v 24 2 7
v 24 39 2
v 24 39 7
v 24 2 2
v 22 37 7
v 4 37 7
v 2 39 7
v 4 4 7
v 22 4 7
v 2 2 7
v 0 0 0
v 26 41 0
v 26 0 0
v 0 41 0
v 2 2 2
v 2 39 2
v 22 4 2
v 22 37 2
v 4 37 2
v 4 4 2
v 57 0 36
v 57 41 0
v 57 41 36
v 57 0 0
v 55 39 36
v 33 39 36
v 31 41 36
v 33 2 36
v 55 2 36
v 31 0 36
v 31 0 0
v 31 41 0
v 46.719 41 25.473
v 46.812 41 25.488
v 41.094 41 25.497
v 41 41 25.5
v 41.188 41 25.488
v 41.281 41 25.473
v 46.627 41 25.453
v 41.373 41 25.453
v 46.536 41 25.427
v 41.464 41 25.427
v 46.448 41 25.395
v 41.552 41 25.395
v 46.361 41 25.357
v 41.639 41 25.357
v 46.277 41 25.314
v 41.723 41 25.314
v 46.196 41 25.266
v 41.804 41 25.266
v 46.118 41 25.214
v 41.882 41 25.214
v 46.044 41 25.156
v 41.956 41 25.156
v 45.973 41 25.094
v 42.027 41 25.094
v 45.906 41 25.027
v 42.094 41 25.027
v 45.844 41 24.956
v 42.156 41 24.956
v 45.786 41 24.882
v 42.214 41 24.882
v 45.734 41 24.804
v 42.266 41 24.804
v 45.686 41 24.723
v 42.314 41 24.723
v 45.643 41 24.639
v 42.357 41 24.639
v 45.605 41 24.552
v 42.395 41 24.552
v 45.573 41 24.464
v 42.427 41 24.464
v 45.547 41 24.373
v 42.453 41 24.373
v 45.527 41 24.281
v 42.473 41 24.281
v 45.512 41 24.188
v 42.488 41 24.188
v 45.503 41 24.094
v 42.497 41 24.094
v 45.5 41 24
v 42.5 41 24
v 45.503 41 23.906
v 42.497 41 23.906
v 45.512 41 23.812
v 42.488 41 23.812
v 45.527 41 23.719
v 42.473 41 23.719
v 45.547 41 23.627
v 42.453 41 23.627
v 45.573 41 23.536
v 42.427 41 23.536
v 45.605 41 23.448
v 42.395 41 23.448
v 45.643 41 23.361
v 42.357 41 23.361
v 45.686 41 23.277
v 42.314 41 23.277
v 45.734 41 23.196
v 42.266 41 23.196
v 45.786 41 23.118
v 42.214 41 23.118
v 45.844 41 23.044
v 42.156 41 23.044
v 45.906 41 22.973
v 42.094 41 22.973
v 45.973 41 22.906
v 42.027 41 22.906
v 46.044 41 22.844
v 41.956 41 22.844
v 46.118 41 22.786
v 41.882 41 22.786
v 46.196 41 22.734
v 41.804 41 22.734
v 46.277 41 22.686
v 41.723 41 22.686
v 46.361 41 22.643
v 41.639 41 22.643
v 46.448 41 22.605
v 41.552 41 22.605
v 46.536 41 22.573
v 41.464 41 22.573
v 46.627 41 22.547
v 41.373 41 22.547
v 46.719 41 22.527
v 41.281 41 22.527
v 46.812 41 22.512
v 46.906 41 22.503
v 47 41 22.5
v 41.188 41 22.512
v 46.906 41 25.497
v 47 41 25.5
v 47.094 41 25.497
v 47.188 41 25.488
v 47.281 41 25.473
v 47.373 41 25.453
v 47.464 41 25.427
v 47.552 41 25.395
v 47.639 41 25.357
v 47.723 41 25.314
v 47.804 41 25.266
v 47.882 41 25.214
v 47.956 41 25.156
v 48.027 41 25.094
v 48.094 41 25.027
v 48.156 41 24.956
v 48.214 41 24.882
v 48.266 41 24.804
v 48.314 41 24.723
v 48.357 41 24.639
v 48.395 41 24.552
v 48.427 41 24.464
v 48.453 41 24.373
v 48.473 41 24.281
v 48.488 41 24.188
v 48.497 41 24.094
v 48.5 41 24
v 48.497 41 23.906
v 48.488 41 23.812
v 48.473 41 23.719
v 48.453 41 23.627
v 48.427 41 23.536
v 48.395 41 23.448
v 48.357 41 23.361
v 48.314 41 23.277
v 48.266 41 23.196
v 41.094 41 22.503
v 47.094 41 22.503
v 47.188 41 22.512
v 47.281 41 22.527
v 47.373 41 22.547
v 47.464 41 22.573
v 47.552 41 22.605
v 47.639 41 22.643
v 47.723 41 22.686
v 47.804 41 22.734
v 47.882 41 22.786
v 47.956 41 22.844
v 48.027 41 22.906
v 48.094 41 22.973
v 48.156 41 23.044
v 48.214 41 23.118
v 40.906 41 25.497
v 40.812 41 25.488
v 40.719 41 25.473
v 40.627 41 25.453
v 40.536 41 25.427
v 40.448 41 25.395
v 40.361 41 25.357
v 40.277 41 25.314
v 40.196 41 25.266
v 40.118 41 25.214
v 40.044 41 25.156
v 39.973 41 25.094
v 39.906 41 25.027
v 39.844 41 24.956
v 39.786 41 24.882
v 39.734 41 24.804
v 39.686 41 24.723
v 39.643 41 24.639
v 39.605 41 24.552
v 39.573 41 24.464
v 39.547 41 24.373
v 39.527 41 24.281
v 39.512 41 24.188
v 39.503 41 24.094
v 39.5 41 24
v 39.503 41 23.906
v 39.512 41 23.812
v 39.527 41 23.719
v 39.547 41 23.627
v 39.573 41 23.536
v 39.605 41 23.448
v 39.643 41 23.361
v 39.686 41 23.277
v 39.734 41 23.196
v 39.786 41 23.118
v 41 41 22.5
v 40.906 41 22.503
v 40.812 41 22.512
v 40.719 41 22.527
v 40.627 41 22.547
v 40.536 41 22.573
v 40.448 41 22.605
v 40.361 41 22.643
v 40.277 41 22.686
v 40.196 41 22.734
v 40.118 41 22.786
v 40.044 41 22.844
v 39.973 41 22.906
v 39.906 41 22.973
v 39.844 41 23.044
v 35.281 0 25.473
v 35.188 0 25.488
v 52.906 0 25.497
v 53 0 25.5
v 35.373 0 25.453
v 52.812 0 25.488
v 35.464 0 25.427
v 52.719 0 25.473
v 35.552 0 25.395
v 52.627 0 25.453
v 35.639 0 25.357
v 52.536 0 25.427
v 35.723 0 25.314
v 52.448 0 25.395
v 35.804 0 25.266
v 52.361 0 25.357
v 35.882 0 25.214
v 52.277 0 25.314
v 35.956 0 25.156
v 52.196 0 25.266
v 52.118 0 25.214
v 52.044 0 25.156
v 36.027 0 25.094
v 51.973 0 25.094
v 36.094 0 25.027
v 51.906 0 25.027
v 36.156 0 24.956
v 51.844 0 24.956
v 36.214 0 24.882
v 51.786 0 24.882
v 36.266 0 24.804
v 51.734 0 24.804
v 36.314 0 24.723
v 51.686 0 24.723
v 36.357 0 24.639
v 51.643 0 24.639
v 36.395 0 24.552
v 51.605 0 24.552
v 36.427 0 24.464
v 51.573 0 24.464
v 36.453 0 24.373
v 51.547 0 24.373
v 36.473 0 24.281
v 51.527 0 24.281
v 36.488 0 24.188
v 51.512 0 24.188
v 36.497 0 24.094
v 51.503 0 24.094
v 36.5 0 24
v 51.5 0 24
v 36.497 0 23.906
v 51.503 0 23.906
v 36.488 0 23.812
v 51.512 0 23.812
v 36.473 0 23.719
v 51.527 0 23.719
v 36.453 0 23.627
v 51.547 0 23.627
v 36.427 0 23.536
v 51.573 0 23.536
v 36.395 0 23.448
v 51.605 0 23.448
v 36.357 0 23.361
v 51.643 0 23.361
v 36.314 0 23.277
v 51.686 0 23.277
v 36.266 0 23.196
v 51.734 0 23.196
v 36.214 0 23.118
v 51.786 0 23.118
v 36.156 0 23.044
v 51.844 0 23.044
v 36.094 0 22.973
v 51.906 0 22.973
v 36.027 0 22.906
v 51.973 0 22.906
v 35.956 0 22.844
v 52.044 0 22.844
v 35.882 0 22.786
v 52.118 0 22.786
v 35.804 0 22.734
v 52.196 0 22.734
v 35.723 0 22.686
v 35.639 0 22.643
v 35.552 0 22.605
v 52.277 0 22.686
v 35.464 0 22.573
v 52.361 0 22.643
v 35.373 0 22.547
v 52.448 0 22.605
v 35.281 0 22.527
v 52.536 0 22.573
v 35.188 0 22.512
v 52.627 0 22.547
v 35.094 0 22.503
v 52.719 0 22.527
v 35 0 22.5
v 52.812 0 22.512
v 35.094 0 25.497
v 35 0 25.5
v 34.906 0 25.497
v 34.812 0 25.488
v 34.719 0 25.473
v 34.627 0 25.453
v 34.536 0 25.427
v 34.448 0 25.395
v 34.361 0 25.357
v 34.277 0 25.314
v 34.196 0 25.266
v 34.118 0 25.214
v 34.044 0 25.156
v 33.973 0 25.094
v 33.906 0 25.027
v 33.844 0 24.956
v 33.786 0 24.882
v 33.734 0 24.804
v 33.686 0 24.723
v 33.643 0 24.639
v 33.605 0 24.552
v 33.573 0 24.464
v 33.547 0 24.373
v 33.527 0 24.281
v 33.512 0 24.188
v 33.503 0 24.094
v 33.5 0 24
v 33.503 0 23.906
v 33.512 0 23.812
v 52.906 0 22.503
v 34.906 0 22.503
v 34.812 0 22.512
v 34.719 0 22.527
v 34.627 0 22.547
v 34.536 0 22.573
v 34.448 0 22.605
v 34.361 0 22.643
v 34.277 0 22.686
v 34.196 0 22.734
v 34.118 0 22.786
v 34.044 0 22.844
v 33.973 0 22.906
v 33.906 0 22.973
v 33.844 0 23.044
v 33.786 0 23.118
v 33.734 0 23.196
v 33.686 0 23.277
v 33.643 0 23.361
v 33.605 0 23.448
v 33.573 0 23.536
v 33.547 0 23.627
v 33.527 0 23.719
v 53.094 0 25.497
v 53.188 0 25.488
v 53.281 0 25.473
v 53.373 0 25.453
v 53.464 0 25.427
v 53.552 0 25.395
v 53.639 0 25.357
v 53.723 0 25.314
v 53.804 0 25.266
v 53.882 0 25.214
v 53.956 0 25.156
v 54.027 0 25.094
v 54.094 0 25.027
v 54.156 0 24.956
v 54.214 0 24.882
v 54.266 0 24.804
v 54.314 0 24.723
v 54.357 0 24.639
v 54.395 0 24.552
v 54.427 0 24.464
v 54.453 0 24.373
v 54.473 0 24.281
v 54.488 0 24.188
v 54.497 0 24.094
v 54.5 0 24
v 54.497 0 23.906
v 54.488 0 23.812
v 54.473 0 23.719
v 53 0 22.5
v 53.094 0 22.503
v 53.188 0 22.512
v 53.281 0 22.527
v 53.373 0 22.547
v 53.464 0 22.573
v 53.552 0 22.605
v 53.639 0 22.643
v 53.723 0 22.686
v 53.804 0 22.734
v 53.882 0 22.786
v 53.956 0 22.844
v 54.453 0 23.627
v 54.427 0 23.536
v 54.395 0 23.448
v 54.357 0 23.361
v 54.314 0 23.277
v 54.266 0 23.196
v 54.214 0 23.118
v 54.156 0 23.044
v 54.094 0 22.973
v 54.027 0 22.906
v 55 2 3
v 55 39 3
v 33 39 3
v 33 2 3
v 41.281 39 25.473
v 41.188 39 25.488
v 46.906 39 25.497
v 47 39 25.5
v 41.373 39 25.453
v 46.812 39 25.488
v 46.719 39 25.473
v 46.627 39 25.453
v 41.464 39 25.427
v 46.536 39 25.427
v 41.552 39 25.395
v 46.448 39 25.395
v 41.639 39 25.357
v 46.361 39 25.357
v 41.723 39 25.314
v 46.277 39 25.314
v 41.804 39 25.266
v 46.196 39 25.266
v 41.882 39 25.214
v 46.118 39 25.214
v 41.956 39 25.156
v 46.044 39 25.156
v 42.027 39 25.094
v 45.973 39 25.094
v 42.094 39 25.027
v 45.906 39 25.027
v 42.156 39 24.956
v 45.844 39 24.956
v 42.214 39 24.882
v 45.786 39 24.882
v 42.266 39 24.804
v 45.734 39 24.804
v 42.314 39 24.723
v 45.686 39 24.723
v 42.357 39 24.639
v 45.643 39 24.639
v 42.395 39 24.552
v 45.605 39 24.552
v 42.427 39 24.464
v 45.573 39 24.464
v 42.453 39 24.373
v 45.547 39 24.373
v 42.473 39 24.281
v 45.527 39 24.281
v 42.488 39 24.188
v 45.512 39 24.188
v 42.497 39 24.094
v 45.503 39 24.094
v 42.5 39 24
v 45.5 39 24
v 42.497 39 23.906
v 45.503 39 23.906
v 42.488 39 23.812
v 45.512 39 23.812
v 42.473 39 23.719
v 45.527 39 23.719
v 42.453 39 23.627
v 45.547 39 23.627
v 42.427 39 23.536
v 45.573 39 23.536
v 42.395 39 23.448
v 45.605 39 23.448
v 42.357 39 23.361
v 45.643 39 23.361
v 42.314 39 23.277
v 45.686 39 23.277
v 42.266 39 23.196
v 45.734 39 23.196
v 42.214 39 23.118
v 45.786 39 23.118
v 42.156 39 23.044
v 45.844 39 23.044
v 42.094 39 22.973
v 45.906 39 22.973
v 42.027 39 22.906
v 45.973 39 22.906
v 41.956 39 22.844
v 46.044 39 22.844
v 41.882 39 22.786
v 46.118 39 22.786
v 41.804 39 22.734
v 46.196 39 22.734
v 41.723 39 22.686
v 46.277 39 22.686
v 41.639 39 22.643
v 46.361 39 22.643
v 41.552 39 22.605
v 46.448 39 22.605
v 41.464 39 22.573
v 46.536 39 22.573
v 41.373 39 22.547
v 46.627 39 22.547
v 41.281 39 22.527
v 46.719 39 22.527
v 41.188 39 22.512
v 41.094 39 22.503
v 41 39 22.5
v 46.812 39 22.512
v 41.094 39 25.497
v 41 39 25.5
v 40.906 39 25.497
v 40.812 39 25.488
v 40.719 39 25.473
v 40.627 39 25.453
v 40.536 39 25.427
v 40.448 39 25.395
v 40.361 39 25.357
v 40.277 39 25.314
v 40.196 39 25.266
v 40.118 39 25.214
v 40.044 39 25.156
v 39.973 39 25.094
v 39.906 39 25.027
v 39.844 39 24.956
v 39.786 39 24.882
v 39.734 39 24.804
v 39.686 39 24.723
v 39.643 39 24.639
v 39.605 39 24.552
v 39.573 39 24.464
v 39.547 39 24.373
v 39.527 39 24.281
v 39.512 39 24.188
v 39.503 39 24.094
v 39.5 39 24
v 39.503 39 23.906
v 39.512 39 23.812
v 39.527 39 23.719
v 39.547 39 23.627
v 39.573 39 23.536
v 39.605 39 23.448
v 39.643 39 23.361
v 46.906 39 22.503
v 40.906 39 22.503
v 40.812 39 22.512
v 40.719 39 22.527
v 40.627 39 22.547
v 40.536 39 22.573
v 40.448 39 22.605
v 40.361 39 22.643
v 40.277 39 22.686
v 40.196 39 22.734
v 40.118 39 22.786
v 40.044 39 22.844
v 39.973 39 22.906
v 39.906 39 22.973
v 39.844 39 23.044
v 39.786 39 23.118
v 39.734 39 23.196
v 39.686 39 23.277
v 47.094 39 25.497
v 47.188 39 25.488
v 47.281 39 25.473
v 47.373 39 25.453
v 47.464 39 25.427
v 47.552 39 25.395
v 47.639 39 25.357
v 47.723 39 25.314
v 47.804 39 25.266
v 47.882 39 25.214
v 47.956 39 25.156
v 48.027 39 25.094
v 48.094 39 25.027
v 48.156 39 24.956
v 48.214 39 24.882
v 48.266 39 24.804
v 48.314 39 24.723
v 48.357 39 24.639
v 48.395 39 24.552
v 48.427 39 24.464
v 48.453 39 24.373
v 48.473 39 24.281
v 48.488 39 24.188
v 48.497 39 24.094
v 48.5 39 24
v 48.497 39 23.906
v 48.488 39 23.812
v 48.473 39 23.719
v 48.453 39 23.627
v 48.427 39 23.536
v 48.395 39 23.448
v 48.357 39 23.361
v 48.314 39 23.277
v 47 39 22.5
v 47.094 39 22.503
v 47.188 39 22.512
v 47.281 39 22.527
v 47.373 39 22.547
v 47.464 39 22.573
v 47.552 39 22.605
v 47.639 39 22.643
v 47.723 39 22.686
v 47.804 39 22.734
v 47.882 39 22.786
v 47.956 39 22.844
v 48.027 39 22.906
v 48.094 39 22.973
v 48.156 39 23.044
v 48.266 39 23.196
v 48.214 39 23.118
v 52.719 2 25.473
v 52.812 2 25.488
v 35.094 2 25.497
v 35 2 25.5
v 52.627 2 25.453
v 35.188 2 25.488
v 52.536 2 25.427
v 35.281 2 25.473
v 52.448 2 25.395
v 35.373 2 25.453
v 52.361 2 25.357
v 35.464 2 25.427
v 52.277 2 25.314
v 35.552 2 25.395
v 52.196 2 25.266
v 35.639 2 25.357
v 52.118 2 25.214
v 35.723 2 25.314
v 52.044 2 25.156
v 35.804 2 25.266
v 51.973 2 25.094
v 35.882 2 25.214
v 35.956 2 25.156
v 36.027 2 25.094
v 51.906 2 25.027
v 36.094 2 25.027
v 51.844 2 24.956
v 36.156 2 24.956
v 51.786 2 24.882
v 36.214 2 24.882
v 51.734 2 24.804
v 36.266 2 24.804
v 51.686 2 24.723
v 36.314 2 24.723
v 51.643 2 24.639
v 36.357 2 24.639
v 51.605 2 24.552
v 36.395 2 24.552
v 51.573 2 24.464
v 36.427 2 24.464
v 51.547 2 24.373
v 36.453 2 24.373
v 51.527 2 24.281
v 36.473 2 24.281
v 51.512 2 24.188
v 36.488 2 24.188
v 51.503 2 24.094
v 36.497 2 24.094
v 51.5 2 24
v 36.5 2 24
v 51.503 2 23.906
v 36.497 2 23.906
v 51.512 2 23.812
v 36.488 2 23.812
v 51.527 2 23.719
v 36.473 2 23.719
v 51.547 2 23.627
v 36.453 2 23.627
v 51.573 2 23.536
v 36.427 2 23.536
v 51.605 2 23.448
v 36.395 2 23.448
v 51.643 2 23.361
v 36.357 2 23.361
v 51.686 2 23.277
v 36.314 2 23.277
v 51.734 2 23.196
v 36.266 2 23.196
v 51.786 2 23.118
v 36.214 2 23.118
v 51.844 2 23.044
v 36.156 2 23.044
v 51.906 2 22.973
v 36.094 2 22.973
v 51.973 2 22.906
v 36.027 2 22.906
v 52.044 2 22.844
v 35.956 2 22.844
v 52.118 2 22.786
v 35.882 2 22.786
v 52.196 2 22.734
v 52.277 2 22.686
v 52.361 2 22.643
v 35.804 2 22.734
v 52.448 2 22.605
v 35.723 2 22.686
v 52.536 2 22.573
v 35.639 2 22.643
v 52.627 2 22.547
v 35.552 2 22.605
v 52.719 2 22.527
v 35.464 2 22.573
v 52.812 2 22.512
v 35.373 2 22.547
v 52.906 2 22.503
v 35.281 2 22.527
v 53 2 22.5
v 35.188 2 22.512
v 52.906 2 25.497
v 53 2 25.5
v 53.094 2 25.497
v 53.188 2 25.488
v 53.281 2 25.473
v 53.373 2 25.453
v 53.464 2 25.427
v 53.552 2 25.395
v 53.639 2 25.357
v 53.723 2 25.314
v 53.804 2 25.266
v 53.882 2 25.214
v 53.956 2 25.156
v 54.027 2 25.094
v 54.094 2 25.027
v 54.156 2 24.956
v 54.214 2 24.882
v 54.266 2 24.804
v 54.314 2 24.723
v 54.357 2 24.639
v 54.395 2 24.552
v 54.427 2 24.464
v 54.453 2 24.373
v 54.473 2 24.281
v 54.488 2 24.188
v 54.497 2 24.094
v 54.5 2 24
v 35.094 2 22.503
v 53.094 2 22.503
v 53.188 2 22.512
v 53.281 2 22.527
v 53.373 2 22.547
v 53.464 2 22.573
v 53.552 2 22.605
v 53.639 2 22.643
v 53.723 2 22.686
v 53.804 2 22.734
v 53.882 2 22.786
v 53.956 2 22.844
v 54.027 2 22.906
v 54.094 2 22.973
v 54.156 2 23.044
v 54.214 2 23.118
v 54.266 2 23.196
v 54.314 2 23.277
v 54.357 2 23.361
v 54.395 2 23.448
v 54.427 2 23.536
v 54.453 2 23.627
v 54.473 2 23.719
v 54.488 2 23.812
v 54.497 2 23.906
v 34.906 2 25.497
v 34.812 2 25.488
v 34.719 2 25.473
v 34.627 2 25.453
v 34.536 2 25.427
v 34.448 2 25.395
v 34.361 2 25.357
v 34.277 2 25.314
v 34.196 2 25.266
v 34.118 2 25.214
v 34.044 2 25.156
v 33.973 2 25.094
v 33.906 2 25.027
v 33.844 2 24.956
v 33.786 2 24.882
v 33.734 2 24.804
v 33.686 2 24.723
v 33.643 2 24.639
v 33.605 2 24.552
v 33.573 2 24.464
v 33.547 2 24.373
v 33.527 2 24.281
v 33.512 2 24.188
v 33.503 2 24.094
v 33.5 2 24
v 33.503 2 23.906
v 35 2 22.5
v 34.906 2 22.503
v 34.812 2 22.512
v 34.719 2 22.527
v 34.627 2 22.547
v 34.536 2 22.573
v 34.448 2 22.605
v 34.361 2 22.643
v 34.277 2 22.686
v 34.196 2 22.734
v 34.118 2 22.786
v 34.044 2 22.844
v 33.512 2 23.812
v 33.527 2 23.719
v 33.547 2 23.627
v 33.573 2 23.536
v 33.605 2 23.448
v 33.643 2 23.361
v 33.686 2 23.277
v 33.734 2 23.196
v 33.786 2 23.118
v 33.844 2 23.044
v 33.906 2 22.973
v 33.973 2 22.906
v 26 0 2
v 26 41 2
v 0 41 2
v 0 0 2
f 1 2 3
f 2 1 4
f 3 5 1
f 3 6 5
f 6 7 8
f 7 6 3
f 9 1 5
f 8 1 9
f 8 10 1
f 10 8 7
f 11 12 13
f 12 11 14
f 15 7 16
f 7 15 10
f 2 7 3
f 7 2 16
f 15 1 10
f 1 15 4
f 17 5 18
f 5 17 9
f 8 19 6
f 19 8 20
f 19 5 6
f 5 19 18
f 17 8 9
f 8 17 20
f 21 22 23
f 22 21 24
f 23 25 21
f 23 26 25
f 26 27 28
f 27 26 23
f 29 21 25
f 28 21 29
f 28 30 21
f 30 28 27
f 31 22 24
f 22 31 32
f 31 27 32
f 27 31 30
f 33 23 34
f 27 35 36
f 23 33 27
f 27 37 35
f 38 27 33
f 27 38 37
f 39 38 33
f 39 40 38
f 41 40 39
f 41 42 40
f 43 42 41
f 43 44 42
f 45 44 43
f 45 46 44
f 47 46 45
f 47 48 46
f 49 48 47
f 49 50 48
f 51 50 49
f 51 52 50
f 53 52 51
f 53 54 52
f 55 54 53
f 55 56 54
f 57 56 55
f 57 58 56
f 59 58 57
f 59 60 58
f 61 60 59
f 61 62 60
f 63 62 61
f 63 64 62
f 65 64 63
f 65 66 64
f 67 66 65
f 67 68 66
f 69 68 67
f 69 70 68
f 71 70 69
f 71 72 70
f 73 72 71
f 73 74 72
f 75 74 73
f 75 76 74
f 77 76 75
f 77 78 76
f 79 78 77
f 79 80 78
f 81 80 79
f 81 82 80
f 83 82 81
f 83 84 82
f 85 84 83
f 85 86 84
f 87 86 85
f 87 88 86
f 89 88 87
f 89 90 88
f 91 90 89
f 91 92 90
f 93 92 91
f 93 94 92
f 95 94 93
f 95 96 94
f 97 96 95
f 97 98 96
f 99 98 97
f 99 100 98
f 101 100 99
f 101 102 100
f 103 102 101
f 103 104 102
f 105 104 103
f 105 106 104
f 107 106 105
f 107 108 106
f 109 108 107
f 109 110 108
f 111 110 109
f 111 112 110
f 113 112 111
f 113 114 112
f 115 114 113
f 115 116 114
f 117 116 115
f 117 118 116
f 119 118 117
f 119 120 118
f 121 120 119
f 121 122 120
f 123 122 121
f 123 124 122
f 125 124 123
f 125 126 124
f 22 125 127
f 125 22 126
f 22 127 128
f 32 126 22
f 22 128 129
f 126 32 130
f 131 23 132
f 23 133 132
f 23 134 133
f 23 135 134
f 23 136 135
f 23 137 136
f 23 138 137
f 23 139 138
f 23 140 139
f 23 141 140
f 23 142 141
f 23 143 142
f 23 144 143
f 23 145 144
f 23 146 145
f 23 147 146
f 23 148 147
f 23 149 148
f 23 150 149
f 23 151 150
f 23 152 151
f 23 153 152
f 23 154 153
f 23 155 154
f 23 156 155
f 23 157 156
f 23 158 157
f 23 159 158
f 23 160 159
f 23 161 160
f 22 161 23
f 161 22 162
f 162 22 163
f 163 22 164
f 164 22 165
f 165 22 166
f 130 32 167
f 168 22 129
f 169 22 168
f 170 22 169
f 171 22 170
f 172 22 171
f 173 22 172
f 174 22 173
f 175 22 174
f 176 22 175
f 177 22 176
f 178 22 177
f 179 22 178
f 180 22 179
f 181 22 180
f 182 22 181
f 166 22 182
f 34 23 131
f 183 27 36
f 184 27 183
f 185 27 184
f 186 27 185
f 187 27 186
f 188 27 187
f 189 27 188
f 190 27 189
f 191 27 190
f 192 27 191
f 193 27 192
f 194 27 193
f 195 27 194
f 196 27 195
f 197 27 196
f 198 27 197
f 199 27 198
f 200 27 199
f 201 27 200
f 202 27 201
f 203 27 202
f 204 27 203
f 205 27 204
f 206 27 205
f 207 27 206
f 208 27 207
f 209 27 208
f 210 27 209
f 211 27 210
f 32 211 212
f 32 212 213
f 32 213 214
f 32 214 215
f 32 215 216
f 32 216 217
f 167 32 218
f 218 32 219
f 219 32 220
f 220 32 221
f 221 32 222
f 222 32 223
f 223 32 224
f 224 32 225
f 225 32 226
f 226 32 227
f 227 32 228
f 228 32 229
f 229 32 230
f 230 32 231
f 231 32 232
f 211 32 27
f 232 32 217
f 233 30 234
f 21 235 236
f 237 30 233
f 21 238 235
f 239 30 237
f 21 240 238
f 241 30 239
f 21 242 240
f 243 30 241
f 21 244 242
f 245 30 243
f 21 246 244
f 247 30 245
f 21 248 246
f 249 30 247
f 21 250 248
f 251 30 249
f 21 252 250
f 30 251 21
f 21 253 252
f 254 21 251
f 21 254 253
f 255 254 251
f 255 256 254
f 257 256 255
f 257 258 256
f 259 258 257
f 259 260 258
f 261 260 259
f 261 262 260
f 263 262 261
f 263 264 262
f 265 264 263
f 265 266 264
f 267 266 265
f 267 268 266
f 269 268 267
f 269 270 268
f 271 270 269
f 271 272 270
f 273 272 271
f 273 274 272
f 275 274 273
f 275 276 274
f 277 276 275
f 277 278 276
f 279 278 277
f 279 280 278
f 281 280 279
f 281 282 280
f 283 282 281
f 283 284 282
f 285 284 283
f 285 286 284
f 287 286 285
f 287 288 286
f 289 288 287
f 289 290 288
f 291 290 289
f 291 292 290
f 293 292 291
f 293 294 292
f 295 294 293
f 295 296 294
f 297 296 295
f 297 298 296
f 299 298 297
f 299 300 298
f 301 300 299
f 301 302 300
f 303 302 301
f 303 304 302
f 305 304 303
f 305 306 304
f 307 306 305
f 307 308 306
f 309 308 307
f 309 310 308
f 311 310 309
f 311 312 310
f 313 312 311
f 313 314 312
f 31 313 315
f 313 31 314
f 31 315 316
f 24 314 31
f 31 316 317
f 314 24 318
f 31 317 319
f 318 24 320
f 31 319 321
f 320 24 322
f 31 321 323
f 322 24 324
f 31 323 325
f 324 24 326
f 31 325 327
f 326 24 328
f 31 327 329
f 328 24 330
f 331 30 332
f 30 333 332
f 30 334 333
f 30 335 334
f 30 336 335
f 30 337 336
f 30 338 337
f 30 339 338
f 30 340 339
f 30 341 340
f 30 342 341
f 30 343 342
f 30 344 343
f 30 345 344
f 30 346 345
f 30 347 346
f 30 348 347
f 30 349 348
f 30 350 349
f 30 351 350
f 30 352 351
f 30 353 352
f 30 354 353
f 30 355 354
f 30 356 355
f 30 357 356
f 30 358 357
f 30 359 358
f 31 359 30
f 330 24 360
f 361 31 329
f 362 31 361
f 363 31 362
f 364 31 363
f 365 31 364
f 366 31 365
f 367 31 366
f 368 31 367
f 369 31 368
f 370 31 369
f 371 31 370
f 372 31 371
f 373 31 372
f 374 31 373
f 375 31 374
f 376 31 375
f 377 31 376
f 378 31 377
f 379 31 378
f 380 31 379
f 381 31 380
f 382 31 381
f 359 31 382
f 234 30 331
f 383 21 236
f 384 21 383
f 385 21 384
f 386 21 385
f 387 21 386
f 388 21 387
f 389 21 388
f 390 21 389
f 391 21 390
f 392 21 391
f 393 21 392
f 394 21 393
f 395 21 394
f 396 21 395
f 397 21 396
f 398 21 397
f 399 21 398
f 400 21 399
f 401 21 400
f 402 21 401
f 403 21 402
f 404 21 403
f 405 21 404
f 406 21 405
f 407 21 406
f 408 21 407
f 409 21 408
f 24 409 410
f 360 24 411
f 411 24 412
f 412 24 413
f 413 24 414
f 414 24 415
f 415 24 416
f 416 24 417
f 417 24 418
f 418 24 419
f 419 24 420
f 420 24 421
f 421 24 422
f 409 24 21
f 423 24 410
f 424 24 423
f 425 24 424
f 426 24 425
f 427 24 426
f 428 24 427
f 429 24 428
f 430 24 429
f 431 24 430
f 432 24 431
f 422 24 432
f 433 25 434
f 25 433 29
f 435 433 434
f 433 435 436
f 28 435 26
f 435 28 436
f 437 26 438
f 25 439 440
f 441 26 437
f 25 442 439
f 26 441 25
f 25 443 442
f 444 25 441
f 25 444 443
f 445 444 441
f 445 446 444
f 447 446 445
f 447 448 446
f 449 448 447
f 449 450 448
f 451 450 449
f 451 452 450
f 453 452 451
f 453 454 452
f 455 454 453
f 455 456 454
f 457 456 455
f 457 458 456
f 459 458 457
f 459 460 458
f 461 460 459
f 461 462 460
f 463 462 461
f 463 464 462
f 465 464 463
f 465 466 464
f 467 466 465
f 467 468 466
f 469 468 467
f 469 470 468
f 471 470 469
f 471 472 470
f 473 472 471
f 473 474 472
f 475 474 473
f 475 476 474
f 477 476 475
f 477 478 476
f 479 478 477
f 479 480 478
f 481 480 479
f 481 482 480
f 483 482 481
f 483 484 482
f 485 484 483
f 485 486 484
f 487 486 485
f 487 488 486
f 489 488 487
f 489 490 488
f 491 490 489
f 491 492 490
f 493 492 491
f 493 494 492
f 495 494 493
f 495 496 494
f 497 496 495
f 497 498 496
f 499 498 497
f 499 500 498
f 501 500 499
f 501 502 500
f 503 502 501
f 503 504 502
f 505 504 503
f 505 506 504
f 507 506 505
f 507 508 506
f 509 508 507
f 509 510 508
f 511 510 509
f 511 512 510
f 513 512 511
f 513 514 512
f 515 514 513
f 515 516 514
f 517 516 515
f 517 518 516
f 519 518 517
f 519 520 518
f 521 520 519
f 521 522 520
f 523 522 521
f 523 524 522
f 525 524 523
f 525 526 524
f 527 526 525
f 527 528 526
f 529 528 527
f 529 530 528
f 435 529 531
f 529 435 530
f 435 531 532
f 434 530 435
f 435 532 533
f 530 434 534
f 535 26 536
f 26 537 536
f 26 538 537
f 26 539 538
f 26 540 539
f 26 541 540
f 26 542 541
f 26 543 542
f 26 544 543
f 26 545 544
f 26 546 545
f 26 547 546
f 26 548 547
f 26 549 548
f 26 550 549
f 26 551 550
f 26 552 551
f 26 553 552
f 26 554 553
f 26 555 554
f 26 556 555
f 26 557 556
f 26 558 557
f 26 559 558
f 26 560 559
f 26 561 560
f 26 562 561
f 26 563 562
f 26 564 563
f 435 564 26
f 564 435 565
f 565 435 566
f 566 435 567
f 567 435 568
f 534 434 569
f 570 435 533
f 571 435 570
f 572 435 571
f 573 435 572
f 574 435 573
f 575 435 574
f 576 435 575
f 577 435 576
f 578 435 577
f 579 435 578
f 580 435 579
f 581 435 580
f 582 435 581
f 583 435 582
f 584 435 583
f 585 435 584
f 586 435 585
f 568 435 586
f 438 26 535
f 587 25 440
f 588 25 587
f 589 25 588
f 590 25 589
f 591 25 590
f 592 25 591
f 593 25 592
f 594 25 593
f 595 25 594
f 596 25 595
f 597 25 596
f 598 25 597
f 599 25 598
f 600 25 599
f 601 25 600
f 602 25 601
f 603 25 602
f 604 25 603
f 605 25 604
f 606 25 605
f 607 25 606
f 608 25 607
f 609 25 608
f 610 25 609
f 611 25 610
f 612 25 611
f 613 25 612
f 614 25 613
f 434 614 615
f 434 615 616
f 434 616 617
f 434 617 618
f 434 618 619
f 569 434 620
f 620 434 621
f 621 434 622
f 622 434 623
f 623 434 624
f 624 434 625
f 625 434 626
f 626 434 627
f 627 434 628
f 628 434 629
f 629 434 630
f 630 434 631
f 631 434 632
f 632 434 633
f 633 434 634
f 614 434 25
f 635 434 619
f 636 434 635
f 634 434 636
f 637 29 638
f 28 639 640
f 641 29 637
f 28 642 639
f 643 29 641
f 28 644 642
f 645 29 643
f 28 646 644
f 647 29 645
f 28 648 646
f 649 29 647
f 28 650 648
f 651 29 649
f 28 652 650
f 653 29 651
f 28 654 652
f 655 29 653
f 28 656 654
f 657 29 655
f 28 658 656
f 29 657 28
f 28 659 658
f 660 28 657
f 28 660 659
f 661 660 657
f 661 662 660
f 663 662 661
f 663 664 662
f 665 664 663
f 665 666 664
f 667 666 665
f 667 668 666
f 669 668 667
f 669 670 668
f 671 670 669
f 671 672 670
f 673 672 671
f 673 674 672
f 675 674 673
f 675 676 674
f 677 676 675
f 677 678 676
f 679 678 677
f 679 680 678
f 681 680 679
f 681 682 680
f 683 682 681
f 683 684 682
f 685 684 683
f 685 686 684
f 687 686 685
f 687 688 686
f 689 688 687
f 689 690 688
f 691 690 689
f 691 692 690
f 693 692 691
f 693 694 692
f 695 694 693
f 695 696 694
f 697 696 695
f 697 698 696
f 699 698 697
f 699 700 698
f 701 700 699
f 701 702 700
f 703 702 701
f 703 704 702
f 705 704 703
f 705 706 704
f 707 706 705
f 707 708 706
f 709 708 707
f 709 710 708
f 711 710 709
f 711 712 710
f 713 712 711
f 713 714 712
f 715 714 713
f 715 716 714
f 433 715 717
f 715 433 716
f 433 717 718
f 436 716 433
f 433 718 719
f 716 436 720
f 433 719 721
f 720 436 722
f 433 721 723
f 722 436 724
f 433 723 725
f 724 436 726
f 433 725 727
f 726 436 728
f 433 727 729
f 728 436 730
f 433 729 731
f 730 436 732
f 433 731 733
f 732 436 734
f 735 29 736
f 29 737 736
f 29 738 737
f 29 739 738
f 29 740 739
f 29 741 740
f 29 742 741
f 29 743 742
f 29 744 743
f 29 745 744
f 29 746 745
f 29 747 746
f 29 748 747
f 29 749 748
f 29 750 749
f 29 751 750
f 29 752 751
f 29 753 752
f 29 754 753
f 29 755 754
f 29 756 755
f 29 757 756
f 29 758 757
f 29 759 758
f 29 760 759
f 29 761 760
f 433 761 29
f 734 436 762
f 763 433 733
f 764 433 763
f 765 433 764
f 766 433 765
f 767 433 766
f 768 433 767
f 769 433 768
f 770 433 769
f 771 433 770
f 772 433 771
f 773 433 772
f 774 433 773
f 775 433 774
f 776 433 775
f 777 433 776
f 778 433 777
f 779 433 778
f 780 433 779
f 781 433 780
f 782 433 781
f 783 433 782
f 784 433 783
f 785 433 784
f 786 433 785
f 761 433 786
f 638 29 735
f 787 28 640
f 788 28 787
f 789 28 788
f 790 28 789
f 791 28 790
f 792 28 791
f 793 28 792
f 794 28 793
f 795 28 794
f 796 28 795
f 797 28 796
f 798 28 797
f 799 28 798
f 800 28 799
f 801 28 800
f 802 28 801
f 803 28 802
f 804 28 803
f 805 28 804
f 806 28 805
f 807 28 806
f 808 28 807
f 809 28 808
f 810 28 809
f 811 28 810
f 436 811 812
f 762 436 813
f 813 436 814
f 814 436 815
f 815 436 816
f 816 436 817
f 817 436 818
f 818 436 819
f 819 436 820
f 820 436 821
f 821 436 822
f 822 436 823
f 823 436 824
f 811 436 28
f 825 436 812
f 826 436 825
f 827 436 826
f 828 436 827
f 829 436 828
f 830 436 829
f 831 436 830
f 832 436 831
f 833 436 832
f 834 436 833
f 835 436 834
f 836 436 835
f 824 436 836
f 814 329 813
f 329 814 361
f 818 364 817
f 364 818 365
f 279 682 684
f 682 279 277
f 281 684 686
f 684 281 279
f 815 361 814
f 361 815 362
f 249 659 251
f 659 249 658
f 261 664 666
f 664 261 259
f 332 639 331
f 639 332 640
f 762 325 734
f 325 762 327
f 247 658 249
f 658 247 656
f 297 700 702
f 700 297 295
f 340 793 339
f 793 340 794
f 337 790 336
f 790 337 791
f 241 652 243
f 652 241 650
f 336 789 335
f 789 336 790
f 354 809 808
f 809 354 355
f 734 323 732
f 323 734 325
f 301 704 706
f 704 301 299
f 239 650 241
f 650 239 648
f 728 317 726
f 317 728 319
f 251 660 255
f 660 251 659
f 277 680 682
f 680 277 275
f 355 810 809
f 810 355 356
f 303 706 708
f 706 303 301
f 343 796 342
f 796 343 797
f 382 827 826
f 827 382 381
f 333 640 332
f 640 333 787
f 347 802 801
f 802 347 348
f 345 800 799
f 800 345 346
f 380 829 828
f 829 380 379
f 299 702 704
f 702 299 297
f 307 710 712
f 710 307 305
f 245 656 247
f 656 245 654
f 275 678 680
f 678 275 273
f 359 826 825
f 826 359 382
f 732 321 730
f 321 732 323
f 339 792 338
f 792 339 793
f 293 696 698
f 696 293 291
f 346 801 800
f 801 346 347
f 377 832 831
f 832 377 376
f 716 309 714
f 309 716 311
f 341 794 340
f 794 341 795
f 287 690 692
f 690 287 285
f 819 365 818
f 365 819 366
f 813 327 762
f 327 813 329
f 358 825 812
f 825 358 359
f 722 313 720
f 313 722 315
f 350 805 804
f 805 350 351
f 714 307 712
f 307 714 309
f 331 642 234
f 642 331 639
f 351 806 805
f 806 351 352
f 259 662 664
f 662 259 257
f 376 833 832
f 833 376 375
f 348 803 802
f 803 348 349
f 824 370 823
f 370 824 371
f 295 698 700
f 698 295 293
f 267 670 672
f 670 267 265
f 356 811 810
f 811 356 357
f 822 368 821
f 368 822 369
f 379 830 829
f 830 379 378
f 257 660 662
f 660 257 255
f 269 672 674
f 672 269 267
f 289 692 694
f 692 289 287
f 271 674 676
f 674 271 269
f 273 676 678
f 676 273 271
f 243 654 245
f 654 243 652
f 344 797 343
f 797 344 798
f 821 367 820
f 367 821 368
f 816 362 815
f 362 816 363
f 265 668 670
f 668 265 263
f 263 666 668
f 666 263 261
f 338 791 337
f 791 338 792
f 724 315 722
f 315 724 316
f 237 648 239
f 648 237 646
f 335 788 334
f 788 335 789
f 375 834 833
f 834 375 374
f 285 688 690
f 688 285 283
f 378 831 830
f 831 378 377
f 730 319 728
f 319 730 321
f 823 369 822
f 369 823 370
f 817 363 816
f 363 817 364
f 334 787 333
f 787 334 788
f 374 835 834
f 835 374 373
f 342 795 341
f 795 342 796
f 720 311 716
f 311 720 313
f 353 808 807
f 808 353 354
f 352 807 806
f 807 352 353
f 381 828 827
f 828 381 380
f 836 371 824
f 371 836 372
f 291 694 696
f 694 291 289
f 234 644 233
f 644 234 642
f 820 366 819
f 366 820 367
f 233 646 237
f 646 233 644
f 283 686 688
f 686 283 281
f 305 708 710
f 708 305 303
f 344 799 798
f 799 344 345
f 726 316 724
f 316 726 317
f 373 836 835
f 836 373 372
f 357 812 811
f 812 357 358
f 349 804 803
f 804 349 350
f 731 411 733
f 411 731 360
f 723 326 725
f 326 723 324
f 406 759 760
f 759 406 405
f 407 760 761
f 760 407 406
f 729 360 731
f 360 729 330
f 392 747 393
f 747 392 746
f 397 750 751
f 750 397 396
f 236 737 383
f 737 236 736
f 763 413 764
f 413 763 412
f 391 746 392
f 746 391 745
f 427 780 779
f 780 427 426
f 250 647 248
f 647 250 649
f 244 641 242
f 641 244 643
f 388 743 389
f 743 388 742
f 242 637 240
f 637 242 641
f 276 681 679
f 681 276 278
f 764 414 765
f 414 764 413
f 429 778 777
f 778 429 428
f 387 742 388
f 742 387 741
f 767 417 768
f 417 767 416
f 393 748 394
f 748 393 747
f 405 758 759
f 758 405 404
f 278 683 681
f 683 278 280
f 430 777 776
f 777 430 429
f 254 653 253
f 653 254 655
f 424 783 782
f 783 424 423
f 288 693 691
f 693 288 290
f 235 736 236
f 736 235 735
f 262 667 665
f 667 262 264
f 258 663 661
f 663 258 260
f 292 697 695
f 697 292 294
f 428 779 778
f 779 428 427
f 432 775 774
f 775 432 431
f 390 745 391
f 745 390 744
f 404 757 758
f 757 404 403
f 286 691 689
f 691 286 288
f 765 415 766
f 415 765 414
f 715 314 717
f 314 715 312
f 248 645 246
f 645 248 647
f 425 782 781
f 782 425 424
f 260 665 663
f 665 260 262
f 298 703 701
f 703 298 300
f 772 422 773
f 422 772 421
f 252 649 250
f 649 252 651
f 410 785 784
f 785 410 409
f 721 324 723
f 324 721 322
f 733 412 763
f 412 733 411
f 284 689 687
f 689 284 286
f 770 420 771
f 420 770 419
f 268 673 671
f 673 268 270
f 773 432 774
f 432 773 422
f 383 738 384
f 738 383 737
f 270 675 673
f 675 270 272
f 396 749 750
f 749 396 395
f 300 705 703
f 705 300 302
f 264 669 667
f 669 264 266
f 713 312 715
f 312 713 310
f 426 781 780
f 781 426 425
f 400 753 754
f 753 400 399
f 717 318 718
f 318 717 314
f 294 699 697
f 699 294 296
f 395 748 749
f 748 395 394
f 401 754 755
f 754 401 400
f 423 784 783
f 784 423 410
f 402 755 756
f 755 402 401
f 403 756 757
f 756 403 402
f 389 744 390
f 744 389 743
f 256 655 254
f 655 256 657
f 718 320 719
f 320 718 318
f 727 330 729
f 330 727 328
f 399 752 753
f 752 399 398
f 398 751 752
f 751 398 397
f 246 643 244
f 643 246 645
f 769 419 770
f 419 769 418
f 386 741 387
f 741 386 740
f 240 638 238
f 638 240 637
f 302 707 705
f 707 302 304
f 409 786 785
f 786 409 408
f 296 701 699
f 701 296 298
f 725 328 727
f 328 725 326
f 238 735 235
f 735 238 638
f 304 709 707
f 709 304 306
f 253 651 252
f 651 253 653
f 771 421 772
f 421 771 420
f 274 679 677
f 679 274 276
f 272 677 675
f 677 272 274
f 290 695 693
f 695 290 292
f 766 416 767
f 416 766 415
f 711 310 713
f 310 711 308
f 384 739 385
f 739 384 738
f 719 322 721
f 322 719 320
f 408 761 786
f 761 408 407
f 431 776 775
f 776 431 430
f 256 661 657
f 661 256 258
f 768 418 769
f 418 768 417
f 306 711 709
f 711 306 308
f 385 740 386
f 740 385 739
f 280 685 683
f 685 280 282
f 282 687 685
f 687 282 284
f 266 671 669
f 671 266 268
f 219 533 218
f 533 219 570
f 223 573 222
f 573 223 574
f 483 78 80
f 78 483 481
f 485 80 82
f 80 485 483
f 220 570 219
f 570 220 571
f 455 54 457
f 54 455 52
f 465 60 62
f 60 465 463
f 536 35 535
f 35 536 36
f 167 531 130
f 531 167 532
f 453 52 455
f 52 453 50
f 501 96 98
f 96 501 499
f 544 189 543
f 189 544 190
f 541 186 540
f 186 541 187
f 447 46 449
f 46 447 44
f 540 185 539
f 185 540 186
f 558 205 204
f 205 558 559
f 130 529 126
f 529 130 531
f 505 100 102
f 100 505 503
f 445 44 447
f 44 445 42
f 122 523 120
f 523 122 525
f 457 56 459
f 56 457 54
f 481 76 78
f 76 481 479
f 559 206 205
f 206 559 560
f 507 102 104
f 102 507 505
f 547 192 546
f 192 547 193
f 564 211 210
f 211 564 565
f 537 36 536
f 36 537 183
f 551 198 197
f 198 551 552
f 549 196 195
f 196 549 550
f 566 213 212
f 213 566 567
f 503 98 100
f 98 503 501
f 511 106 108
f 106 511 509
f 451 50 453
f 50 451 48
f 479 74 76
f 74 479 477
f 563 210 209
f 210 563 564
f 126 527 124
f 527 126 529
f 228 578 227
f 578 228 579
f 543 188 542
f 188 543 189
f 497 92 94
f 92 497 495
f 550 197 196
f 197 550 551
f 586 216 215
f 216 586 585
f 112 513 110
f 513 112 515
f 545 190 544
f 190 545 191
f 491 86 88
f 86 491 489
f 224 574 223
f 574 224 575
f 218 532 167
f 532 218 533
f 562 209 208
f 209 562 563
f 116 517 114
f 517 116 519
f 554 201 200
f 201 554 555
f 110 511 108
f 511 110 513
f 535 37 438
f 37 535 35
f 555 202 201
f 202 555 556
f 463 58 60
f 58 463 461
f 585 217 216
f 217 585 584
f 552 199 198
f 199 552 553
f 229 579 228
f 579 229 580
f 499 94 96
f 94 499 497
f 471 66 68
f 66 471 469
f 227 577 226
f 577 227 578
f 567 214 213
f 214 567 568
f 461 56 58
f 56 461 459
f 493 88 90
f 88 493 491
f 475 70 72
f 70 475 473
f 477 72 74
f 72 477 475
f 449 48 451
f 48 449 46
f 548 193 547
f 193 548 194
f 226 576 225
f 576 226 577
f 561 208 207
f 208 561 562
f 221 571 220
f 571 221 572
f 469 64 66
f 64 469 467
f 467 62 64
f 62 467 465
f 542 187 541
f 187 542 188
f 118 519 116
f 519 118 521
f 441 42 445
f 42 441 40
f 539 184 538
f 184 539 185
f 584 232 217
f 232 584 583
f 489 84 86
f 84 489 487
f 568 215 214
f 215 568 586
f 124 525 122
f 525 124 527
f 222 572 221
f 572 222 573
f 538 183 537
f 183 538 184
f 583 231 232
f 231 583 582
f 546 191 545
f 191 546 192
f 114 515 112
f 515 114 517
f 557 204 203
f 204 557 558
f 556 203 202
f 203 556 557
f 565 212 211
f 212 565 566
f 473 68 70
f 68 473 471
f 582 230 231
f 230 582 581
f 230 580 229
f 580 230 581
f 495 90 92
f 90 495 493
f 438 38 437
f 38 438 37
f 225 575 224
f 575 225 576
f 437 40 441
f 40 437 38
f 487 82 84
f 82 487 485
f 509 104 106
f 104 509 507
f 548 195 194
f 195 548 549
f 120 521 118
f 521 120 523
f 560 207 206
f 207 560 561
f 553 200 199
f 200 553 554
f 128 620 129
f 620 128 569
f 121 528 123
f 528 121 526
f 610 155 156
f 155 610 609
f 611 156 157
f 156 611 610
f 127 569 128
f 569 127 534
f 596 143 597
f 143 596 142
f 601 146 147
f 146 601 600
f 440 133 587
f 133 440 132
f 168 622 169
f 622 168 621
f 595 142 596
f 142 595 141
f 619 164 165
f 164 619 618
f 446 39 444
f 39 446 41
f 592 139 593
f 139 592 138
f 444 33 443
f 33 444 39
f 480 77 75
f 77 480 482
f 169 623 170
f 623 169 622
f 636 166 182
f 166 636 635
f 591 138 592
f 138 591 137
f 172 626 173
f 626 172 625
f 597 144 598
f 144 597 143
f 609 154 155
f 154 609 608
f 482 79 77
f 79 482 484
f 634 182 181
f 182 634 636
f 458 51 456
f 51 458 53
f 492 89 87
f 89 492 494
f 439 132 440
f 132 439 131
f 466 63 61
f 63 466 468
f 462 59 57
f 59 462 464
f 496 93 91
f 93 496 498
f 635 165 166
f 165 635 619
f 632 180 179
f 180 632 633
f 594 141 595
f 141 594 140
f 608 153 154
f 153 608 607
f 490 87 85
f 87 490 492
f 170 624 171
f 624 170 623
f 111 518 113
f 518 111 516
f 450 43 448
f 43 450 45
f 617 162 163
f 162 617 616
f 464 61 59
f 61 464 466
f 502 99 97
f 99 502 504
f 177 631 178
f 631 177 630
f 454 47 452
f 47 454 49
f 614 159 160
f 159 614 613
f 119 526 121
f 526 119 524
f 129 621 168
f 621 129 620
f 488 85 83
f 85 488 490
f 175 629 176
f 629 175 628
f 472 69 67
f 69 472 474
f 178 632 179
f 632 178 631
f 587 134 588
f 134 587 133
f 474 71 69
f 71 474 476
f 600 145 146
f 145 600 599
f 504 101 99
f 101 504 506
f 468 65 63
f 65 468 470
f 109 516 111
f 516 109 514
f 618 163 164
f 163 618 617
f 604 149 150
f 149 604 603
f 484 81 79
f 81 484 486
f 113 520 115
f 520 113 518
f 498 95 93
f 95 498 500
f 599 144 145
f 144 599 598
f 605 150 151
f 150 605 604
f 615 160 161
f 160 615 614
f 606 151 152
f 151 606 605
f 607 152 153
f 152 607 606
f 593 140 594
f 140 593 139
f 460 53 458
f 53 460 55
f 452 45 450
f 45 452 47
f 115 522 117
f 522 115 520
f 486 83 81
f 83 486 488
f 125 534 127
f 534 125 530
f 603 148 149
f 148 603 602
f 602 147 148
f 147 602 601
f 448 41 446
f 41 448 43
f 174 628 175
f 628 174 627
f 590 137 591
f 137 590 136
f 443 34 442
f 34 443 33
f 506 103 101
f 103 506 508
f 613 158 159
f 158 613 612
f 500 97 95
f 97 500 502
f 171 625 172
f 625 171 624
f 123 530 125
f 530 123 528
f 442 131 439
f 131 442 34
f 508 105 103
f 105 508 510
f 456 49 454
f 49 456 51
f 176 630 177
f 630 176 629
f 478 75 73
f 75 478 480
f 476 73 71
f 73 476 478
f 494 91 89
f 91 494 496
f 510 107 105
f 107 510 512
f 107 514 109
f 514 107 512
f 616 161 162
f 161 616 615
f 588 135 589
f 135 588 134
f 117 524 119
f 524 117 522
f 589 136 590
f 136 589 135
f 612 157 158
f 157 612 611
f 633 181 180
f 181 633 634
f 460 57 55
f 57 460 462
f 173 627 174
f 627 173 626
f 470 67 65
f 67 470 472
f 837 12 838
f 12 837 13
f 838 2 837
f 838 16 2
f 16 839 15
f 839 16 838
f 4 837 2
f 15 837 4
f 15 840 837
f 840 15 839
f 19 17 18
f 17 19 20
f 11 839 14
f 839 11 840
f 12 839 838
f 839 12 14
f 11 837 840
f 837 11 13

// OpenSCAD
inside_x=22;
inside_y=37;
inside_z=32;
borders_z=7;
borders_width=2;
//deck
box_x=inside_x+borders_width*2;
box_y=inside_y+borders_width*2;
deck_z=2;
//only for box
hole_radius=1.5;
hole_z=24;
box_z=inside_z+borders_width+deck_z;


module deck1() {

cube([box_x,box_y,deck_z]);

}


module squareBorders(x_length,y_length,z_length,width){
difference(){
    //outer
cube([x_length,y_length,z_length]);
    //inside cutter
translate([width,width,-1]) cube([x_length-2*width,y_length-2*width,z_length+3]);
}
}

deck1();
    
translate([borders_width,borders_width,0]) squareBorders(box_x-2*borders_width,box_y-2*borders_width,borders_z,borders_width);


//box


module box1() {
difference(){
cube([box_x,box_y,box_z]);
translate([2,2,+3]) cube([box_x-borders_width*2,box_y-borders_width*2,box_z+9]);}
}

module cylinderCut(){
rotate([90,0,0]) cylinder(h=5,r=hole_radius, $fn=100); //cylinder for cutting holes for wires
}

translate([box_x+5,0,0]){    
difference(){
box1();
translate([4,3,hole_z]) cylinderCut();
translate([22,3,hole_z]) cylinderCut();
translate([10,box_y+1,hole_z]) cylinderCut();
translate([16,box_y+1,hole_z]) cylinderCut();
}}
